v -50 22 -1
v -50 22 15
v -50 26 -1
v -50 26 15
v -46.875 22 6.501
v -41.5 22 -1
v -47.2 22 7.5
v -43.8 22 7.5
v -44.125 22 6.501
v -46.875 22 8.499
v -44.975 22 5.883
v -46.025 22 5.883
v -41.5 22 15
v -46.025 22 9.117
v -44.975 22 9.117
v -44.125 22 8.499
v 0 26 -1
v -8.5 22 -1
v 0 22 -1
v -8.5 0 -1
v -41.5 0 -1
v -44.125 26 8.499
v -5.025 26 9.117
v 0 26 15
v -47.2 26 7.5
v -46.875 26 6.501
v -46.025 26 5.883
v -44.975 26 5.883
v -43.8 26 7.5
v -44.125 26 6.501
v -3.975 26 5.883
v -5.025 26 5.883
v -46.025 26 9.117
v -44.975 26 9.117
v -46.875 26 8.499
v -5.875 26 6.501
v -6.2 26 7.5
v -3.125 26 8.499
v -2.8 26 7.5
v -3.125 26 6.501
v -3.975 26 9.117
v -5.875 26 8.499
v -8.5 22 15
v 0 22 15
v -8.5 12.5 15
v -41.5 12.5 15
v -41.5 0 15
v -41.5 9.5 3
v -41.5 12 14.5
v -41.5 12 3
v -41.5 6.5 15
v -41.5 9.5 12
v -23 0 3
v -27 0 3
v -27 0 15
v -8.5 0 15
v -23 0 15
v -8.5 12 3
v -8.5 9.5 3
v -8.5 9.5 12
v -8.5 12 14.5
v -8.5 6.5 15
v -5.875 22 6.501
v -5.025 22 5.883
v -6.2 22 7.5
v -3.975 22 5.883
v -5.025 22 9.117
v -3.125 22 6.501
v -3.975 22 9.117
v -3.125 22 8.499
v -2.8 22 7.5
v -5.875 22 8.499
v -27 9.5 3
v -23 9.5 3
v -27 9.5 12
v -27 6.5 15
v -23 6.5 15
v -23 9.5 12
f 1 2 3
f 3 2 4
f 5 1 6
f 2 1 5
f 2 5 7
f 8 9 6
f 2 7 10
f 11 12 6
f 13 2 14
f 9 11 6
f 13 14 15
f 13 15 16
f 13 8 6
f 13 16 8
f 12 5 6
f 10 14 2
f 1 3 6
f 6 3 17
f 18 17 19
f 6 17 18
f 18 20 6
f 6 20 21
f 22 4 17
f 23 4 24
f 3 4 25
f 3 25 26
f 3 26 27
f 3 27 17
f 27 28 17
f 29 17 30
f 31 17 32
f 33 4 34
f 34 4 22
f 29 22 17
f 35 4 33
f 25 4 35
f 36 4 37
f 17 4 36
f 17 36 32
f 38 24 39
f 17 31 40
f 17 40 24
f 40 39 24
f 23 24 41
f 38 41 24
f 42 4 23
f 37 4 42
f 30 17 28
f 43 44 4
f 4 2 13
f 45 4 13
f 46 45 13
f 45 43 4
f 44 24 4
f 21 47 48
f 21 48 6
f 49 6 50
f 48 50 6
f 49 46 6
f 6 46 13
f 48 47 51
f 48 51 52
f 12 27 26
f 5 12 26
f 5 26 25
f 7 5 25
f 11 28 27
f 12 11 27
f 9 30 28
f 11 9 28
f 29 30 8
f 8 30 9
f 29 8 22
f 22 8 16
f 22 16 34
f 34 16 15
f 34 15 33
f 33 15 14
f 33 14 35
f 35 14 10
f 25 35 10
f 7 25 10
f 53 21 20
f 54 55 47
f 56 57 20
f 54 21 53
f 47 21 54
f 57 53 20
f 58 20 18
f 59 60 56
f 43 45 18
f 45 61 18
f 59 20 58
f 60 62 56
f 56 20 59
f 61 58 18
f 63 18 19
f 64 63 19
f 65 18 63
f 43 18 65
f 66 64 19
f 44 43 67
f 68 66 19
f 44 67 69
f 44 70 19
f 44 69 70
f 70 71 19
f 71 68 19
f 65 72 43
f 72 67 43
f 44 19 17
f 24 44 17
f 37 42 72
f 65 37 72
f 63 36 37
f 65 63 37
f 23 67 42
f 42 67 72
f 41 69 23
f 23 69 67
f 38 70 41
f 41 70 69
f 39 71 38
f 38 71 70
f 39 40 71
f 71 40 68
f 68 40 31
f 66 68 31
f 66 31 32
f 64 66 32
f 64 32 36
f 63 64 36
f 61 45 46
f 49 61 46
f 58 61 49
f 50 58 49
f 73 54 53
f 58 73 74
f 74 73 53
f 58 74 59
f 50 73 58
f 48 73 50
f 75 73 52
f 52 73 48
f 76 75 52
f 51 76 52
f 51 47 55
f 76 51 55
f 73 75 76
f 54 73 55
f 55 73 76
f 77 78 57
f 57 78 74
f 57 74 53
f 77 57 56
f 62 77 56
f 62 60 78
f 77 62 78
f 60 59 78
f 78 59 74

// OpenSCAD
// PRUSA iteration3
// Y belt holder
// GNU GPL v3
// Josef Průša <iam@josefprusa.cz> and contributors
// http://www.reprap.org/wiki/Prusa_Mendel
// http://prusamendel.org


module belt_holder_base(){
 translate([-33-8.5,0,-1]) cube([33,15,16]); 
 translate([-33-8.5,11,-1]) cube([33,15,16]);
 translate([-50,22,-1]) cube([50,4,16]);	
}

module belt_holder_beltcut(){
 position_tweak=-0.2;
 // Belt slit
 translate([-66,-0.5+10,3]) cube([67,2.5,15]);
 // Smooth insert cutout
 translate([-66,-0.5+10,12]) rotate([45,0,0]) cube([67,15,15]);
 // Individual teeth
// for ( i = [0 : 23] ){
//  translate([0-i*3+position_tweak,-0.5+8,3]) cube([1.7,3,15]);
// }
 // Middle opening
 translate([-2-25,-1,3]) cube([4,11,15]);	
}

module belt_holder_holes(){
 translate([-4.5,0,7.5]) rotate([-90,0,0]) cylinder(h=30, r=1.7, $fn=10);
 translate([-45.5,0,7.5]) rotate([-90,0,0]) cylinder(h=30, r=1.7, $fn=10);
}

// Final part
module belt_holder(){
 difference(){
  belt_holder_base();
  belt_holder_beltcut();
  belt_holder_holes();
 }
}

belt_holder();
